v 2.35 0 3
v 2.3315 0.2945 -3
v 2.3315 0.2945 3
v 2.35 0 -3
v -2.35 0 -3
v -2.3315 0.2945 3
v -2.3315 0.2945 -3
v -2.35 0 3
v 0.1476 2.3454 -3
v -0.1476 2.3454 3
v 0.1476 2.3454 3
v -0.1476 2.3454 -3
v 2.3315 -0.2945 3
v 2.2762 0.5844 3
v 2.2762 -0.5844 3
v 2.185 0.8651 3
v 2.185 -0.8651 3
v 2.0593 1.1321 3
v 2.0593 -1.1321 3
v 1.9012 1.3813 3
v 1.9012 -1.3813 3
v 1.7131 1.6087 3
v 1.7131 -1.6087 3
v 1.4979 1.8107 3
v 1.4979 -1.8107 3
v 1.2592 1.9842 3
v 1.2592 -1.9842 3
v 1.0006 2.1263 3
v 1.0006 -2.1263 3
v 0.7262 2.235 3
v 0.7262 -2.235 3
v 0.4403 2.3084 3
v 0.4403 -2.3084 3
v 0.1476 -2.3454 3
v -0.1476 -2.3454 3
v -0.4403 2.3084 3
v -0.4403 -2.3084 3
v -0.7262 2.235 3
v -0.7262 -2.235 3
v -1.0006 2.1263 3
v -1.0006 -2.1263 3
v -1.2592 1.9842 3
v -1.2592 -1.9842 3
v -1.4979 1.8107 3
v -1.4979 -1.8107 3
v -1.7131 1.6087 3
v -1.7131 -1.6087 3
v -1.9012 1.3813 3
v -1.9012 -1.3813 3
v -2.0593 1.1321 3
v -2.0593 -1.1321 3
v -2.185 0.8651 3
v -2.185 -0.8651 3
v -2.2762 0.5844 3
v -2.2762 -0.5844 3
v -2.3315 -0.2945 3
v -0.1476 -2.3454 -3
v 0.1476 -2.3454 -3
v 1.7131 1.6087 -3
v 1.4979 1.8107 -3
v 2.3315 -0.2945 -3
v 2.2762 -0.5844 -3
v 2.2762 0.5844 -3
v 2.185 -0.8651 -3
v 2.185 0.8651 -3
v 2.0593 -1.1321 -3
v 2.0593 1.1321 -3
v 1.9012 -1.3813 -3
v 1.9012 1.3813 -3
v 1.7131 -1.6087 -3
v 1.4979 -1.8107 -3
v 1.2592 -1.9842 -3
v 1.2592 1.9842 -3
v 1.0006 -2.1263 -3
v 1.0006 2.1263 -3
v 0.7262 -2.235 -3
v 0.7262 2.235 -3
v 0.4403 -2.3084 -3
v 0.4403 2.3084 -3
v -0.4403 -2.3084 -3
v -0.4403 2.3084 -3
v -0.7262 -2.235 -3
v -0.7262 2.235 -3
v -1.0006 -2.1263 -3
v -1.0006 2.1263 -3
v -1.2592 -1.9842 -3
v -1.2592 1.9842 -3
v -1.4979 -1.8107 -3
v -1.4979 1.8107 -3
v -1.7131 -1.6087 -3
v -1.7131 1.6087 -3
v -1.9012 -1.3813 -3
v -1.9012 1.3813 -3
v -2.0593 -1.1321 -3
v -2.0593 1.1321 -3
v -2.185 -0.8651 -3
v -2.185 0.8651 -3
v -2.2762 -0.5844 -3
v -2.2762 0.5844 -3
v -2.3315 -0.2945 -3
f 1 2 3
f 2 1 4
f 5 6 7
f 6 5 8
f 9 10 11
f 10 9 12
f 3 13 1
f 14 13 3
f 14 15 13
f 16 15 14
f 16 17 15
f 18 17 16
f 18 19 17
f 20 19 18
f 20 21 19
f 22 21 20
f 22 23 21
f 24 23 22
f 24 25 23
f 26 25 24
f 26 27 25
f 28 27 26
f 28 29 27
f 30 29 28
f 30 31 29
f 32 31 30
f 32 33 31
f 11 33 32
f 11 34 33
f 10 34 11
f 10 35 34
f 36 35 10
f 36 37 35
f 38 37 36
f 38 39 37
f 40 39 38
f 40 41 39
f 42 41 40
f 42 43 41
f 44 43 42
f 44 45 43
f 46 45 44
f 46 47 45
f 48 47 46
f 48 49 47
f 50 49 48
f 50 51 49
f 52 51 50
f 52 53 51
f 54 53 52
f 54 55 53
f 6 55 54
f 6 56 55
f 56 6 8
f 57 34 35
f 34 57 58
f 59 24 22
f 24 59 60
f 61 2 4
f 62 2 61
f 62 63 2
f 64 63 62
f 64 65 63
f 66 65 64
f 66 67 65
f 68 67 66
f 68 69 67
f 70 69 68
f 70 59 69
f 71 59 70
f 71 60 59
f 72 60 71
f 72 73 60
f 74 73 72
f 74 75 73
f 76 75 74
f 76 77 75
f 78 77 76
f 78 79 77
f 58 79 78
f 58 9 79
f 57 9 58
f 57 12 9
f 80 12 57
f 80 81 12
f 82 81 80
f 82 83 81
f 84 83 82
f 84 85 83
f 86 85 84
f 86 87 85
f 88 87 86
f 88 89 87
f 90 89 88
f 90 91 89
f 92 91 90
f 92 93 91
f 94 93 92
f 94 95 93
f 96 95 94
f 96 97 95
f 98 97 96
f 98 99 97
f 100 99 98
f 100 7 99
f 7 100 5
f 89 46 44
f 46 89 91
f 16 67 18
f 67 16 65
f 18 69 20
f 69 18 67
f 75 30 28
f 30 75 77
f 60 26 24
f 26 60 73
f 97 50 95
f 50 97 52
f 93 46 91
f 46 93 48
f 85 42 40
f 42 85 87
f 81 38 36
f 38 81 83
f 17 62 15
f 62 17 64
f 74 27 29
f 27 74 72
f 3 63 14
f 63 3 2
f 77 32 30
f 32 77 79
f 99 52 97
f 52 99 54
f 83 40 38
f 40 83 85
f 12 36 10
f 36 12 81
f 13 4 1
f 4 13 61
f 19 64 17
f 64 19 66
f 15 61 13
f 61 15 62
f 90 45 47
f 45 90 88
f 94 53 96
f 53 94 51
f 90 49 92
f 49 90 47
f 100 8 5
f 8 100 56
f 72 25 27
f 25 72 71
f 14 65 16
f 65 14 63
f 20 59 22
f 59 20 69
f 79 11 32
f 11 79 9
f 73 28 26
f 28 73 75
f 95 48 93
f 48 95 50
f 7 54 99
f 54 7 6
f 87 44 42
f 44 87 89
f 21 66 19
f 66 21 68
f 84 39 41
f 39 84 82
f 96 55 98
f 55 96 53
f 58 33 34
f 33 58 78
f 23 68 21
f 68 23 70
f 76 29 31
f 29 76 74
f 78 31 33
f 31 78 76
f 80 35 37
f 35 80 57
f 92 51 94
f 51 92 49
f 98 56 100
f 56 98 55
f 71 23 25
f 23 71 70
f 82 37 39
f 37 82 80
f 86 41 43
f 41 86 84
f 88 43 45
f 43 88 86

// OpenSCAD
$fn = 50;


difference() {
	union() {
		translate(v = [0, 0, -3.0000000000]) {
			cylinder(h = 6, r = 2.3500000000);
		}
	}
	union() {
		translate(v = [0, 0, -100.0000000000]) {
			cylinder(h = 200, r = 0);
		}
	}
}
